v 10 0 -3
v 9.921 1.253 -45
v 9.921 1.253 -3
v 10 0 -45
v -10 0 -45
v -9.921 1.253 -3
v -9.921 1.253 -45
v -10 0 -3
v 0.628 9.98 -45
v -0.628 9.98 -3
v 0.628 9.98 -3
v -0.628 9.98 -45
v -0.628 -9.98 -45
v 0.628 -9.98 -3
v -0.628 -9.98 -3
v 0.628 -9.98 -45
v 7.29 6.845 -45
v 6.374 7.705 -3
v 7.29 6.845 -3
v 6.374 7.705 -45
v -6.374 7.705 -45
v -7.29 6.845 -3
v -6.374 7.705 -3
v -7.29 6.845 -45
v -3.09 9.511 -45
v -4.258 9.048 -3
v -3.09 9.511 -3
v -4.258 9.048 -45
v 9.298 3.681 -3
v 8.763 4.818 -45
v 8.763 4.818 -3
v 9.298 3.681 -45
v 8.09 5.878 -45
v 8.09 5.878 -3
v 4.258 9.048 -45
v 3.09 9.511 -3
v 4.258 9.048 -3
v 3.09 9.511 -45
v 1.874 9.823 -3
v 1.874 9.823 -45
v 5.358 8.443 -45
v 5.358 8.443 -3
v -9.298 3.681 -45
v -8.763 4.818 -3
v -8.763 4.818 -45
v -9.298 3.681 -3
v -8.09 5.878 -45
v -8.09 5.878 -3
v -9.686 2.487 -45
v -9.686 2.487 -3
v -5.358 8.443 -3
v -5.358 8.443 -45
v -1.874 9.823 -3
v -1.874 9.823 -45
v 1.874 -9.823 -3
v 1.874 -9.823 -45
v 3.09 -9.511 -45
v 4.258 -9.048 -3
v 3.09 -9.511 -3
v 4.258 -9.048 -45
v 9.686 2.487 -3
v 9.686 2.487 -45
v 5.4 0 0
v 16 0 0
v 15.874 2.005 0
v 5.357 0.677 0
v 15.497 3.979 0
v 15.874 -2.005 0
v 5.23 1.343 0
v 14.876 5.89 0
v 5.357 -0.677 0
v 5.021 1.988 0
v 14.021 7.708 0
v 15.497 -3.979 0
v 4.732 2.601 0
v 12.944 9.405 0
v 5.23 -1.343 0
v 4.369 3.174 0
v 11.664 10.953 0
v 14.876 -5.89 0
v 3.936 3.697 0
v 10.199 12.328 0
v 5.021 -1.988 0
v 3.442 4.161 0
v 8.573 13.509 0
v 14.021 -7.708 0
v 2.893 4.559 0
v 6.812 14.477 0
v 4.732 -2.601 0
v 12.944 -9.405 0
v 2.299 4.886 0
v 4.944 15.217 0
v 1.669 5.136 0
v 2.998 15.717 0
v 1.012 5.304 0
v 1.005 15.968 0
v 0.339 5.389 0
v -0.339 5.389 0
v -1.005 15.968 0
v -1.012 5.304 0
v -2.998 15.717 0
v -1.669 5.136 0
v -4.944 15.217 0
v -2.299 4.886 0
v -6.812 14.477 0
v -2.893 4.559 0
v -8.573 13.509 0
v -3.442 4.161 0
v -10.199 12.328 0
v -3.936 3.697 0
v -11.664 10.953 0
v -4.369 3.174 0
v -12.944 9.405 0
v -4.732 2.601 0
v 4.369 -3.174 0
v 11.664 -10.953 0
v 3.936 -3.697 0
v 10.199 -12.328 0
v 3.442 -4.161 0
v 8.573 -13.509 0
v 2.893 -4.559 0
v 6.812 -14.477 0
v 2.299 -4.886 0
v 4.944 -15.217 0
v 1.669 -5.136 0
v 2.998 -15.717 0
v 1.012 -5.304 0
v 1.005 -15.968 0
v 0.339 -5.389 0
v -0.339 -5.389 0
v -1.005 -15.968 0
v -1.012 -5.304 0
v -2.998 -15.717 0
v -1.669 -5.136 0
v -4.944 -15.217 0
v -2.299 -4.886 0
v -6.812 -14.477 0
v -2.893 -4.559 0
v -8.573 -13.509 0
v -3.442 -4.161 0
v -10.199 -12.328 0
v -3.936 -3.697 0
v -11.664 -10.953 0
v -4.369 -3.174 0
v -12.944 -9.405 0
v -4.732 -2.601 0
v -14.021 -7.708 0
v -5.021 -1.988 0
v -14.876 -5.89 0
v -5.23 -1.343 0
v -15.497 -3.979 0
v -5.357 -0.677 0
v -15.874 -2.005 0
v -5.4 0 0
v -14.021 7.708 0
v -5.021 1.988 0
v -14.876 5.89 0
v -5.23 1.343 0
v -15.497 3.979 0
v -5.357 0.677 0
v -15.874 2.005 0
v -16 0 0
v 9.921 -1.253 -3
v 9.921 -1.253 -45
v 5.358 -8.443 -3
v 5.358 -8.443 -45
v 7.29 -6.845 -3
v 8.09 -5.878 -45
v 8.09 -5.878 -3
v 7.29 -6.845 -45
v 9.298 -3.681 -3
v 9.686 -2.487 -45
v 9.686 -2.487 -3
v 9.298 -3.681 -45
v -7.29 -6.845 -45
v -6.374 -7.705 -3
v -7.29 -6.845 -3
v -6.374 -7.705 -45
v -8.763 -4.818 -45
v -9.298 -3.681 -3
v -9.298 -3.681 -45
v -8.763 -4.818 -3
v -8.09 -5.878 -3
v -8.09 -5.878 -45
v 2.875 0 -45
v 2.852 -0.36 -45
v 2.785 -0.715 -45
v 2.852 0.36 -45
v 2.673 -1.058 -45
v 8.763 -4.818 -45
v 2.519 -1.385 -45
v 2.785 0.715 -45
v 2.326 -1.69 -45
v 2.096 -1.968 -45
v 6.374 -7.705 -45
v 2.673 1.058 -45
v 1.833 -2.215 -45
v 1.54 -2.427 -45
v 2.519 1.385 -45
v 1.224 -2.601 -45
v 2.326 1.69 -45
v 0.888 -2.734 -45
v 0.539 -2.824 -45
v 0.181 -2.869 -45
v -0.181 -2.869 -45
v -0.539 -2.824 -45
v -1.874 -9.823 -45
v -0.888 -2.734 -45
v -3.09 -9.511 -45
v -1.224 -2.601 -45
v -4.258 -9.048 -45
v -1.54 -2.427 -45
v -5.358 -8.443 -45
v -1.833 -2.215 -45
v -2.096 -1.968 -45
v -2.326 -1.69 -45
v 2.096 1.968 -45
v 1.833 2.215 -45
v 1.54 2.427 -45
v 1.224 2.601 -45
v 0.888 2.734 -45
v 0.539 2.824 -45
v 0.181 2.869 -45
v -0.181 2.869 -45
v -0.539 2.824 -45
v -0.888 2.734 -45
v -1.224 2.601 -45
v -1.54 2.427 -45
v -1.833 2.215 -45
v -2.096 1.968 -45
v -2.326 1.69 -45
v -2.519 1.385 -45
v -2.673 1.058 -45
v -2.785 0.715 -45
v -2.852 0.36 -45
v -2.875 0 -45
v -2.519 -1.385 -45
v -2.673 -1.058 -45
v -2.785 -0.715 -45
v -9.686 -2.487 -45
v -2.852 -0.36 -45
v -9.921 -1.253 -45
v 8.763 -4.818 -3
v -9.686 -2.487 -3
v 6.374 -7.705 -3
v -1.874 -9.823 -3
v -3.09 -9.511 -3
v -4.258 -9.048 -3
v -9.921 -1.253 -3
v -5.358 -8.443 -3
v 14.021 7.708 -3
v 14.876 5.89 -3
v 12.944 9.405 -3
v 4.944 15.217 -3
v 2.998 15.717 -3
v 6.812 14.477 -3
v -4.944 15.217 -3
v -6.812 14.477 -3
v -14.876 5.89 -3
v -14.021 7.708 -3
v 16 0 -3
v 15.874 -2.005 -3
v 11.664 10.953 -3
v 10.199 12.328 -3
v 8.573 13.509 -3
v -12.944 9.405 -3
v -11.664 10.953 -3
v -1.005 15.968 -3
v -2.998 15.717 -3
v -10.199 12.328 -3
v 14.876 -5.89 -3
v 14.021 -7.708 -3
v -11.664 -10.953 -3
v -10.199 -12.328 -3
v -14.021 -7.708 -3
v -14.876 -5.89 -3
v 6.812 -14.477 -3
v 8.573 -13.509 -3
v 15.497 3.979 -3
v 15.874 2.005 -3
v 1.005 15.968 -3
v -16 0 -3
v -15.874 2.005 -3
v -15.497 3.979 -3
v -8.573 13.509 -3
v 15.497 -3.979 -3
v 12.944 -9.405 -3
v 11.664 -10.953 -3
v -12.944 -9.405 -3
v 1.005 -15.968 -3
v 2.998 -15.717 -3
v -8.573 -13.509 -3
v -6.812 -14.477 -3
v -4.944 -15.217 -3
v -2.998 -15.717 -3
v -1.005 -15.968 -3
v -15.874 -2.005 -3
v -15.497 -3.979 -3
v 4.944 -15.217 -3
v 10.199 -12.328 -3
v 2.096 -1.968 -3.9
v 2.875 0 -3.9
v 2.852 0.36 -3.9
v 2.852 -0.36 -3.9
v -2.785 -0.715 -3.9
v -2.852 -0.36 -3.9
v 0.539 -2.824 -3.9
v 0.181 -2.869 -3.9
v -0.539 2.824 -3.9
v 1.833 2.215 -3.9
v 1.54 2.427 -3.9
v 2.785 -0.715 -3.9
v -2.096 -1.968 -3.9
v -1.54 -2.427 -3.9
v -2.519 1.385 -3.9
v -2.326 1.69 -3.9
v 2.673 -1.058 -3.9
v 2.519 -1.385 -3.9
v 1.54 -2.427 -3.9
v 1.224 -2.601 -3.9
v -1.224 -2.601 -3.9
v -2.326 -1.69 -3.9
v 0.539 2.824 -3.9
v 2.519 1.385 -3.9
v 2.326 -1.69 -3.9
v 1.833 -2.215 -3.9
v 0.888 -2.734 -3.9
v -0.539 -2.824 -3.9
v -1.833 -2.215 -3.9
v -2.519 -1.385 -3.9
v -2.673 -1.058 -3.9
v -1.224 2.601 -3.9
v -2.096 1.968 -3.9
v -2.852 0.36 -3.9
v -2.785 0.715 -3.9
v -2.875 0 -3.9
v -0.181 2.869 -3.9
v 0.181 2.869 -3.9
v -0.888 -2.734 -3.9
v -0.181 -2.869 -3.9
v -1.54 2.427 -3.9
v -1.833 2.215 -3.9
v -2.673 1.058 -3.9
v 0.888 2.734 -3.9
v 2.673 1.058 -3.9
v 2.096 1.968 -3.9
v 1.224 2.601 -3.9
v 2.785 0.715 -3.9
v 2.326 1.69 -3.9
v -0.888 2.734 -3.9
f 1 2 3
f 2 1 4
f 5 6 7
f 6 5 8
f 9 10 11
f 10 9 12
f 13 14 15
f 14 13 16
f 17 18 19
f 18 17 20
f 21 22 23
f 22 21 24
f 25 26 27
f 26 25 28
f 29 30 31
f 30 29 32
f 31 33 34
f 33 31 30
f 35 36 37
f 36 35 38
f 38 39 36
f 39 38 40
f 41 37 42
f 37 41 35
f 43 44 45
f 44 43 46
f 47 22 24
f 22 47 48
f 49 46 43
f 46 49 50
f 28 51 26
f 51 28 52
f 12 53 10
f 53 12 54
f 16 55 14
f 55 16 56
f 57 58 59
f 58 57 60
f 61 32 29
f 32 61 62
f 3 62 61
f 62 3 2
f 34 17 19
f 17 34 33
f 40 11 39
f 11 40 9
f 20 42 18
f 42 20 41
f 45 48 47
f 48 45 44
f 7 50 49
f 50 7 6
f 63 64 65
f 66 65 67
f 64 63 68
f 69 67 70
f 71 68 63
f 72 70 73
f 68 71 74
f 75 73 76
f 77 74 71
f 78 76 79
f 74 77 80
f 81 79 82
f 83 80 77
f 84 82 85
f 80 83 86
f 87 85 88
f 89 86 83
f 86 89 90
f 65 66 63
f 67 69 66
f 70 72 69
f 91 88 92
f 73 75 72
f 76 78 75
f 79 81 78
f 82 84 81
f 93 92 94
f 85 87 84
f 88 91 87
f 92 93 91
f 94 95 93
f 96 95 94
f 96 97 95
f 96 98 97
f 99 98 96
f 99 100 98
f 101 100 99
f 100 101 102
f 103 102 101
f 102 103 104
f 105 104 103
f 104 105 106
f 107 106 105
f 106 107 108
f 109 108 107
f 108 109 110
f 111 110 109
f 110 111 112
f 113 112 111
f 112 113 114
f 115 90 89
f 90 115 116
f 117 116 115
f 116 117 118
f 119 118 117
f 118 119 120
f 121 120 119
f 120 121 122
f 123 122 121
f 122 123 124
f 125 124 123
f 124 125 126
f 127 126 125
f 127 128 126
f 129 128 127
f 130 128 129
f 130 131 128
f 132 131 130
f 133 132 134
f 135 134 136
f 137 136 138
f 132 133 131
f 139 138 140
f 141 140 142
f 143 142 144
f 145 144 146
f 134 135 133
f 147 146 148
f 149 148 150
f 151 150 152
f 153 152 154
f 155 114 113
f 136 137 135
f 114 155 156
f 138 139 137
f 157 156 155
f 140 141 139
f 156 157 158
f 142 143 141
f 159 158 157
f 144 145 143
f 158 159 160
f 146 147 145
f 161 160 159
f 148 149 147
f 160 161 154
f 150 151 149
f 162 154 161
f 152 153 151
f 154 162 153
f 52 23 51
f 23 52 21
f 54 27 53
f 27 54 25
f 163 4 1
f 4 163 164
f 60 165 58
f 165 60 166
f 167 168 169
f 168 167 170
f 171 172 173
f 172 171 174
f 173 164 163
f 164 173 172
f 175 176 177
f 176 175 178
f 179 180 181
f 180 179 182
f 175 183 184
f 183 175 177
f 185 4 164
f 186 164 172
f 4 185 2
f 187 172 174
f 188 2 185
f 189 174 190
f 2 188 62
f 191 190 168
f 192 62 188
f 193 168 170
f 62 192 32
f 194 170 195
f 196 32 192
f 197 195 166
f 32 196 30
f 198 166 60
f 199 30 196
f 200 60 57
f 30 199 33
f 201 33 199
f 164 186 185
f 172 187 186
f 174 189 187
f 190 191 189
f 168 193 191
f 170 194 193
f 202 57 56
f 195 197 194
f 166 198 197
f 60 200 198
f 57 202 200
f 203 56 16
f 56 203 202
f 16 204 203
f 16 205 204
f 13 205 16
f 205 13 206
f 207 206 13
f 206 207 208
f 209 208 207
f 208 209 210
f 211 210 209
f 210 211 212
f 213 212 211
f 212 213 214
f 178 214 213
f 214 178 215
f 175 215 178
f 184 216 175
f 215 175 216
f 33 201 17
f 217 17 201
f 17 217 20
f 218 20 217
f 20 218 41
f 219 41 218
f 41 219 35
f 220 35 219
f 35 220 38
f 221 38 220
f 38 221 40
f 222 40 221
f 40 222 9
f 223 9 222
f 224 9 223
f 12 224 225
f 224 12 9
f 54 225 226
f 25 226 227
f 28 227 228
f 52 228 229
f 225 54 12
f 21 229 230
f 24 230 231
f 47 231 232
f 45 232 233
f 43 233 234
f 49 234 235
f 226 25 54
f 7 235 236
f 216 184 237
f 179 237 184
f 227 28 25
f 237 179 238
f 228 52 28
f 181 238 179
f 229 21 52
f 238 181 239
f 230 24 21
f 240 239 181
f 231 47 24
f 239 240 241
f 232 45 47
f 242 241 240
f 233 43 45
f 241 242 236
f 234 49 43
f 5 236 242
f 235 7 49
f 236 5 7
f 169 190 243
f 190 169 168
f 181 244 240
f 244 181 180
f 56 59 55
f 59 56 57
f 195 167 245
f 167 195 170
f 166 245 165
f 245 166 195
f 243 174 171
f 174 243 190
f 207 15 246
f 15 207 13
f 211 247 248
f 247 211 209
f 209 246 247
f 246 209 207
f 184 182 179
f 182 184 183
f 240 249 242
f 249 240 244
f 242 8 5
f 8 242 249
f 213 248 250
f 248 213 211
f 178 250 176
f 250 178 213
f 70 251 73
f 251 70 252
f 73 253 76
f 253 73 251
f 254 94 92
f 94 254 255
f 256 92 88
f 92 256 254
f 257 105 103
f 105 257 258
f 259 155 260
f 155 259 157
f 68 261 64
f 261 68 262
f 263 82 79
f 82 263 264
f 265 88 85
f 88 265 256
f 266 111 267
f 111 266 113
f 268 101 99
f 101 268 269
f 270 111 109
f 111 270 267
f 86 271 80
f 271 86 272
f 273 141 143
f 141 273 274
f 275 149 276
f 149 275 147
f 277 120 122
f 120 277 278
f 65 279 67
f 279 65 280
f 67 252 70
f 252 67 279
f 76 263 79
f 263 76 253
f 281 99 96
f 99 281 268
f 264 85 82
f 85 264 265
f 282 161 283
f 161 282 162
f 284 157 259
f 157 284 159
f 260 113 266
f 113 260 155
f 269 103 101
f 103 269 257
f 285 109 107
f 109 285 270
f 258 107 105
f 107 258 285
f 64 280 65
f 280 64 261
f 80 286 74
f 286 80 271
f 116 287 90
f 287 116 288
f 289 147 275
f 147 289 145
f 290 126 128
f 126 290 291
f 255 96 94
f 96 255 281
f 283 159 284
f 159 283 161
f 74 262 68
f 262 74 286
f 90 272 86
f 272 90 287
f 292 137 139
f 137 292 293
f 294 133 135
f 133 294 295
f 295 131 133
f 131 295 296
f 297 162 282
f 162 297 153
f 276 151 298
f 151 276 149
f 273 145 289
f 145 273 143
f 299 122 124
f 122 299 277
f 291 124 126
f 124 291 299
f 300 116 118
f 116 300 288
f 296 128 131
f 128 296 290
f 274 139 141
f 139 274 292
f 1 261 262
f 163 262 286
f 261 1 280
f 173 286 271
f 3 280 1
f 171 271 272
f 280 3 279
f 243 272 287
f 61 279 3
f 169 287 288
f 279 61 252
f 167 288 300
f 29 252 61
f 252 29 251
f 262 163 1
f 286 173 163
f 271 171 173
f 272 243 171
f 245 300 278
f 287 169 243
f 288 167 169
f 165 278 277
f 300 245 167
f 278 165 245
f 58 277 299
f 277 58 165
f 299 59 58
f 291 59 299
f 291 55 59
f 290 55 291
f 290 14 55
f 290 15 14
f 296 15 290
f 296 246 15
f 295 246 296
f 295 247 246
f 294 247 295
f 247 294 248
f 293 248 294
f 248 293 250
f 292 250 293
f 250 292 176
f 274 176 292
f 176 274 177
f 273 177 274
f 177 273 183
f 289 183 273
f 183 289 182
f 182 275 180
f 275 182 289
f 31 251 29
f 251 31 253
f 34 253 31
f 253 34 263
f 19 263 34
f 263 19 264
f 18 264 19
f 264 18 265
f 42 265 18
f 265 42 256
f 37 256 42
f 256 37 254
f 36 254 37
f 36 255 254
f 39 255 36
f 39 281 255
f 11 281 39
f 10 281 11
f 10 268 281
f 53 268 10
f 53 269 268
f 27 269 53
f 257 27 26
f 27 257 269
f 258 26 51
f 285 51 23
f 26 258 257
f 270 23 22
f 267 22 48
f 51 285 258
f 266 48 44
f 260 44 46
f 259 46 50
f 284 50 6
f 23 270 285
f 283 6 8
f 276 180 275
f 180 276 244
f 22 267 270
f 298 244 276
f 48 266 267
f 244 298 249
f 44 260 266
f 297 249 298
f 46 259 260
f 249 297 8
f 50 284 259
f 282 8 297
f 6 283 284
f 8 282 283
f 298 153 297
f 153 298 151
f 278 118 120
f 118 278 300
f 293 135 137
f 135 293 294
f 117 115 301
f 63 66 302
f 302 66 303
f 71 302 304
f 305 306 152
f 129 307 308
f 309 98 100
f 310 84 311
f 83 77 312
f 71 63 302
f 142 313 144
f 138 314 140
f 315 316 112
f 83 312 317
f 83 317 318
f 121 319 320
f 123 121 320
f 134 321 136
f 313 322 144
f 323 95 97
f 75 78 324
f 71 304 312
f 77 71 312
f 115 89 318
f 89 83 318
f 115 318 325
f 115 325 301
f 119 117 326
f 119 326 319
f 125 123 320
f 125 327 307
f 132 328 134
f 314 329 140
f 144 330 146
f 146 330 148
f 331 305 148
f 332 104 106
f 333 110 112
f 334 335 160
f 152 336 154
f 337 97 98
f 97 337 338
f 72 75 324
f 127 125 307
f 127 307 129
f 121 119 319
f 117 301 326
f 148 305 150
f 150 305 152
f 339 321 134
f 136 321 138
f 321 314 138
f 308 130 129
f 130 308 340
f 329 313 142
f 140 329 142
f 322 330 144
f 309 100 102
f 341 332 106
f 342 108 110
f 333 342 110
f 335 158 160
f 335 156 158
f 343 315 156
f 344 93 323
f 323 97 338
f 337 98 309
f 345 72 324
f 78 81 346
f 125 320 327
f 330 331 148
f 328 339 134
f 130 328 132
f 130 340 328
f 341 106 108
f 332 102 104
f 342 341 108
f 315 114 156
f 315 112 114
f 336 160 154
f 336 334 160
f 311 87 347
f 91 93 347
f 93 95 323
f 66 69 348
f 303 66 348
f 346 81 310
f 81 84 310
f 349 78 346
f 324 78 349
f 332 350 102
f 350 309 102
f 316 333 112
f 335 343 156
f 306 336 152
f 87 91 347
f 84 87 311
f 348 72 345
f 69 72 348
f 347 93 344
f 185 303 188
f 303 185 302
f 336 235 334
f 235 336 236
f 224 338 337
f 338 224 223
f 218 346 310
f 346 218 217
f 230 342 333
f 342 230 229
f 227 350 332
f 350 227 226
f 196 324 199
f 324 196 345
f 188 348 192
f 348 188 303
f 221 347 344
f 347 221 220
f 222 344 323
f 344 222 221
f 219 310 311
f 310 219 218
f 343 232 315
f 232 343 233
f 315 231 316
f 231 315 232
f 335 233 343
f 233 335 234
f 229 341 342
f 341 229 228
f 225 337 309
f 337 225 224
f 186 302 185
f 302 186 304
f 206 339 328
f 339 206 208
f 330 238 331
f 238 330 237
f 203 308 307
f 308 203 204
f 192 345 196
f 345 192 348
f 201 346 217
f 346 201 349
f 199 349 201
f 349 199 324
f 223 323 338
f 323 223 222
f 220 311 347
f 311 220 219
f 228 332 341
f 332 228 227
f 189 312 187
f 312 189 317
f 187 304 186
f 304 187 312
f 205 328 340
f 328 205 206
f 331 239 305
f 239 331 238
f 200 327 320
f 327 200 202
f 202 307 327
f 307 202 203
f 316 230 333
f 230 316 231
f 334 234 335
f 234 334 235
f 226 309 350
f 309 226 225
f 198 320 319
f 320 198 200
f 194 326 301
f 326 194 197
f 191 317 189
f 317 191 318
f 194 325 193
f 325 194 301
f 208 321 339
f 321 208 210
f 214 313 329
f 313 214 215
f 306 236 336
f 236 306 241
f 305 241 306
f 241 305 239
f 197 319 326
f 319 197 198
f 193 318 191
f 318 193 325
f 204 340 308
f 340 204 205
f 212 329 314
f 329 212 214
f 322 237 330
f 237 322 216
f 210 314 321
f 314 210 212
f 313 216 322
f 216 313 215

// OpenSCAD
$fn = 50;


difference() {
	union() {
		translate(v = [0, 0, -45.0000000000]) {
			cylinder(h = 45, r = 10.0000000000);
		}
		translate(v = [0, 0, -3.0000000000]) {
			cylinder(h = 3, r = 16.0000000000);
		}
	}
	union() {
		translate(v = [0, 0, 0]) {
			rotate(a = [0, 0, 0]) {
				difference() {
					union() {
						#translate(v = [0, 0, -45.0000000000]) {
							cylinder(h = 45, r = 2.6000000000);
						}
						#translate(v = [0, 0, -3.9000000000]) {
							cylinder(h = 3.9000000000, r1 = 2.8750000000, r2 = 5.4000000000);
						}
						#translate(v = [0, 0, -45.0000000000]) {
							cylinder(h = 45, r = 2.8750000000);
						}
						#translate(v = [0, 0, -45.0000000000]) {
							cylinder(h = 45, r = 2.6000000000);
						}
					}
					union();
				}
			}
		}
	}
}
